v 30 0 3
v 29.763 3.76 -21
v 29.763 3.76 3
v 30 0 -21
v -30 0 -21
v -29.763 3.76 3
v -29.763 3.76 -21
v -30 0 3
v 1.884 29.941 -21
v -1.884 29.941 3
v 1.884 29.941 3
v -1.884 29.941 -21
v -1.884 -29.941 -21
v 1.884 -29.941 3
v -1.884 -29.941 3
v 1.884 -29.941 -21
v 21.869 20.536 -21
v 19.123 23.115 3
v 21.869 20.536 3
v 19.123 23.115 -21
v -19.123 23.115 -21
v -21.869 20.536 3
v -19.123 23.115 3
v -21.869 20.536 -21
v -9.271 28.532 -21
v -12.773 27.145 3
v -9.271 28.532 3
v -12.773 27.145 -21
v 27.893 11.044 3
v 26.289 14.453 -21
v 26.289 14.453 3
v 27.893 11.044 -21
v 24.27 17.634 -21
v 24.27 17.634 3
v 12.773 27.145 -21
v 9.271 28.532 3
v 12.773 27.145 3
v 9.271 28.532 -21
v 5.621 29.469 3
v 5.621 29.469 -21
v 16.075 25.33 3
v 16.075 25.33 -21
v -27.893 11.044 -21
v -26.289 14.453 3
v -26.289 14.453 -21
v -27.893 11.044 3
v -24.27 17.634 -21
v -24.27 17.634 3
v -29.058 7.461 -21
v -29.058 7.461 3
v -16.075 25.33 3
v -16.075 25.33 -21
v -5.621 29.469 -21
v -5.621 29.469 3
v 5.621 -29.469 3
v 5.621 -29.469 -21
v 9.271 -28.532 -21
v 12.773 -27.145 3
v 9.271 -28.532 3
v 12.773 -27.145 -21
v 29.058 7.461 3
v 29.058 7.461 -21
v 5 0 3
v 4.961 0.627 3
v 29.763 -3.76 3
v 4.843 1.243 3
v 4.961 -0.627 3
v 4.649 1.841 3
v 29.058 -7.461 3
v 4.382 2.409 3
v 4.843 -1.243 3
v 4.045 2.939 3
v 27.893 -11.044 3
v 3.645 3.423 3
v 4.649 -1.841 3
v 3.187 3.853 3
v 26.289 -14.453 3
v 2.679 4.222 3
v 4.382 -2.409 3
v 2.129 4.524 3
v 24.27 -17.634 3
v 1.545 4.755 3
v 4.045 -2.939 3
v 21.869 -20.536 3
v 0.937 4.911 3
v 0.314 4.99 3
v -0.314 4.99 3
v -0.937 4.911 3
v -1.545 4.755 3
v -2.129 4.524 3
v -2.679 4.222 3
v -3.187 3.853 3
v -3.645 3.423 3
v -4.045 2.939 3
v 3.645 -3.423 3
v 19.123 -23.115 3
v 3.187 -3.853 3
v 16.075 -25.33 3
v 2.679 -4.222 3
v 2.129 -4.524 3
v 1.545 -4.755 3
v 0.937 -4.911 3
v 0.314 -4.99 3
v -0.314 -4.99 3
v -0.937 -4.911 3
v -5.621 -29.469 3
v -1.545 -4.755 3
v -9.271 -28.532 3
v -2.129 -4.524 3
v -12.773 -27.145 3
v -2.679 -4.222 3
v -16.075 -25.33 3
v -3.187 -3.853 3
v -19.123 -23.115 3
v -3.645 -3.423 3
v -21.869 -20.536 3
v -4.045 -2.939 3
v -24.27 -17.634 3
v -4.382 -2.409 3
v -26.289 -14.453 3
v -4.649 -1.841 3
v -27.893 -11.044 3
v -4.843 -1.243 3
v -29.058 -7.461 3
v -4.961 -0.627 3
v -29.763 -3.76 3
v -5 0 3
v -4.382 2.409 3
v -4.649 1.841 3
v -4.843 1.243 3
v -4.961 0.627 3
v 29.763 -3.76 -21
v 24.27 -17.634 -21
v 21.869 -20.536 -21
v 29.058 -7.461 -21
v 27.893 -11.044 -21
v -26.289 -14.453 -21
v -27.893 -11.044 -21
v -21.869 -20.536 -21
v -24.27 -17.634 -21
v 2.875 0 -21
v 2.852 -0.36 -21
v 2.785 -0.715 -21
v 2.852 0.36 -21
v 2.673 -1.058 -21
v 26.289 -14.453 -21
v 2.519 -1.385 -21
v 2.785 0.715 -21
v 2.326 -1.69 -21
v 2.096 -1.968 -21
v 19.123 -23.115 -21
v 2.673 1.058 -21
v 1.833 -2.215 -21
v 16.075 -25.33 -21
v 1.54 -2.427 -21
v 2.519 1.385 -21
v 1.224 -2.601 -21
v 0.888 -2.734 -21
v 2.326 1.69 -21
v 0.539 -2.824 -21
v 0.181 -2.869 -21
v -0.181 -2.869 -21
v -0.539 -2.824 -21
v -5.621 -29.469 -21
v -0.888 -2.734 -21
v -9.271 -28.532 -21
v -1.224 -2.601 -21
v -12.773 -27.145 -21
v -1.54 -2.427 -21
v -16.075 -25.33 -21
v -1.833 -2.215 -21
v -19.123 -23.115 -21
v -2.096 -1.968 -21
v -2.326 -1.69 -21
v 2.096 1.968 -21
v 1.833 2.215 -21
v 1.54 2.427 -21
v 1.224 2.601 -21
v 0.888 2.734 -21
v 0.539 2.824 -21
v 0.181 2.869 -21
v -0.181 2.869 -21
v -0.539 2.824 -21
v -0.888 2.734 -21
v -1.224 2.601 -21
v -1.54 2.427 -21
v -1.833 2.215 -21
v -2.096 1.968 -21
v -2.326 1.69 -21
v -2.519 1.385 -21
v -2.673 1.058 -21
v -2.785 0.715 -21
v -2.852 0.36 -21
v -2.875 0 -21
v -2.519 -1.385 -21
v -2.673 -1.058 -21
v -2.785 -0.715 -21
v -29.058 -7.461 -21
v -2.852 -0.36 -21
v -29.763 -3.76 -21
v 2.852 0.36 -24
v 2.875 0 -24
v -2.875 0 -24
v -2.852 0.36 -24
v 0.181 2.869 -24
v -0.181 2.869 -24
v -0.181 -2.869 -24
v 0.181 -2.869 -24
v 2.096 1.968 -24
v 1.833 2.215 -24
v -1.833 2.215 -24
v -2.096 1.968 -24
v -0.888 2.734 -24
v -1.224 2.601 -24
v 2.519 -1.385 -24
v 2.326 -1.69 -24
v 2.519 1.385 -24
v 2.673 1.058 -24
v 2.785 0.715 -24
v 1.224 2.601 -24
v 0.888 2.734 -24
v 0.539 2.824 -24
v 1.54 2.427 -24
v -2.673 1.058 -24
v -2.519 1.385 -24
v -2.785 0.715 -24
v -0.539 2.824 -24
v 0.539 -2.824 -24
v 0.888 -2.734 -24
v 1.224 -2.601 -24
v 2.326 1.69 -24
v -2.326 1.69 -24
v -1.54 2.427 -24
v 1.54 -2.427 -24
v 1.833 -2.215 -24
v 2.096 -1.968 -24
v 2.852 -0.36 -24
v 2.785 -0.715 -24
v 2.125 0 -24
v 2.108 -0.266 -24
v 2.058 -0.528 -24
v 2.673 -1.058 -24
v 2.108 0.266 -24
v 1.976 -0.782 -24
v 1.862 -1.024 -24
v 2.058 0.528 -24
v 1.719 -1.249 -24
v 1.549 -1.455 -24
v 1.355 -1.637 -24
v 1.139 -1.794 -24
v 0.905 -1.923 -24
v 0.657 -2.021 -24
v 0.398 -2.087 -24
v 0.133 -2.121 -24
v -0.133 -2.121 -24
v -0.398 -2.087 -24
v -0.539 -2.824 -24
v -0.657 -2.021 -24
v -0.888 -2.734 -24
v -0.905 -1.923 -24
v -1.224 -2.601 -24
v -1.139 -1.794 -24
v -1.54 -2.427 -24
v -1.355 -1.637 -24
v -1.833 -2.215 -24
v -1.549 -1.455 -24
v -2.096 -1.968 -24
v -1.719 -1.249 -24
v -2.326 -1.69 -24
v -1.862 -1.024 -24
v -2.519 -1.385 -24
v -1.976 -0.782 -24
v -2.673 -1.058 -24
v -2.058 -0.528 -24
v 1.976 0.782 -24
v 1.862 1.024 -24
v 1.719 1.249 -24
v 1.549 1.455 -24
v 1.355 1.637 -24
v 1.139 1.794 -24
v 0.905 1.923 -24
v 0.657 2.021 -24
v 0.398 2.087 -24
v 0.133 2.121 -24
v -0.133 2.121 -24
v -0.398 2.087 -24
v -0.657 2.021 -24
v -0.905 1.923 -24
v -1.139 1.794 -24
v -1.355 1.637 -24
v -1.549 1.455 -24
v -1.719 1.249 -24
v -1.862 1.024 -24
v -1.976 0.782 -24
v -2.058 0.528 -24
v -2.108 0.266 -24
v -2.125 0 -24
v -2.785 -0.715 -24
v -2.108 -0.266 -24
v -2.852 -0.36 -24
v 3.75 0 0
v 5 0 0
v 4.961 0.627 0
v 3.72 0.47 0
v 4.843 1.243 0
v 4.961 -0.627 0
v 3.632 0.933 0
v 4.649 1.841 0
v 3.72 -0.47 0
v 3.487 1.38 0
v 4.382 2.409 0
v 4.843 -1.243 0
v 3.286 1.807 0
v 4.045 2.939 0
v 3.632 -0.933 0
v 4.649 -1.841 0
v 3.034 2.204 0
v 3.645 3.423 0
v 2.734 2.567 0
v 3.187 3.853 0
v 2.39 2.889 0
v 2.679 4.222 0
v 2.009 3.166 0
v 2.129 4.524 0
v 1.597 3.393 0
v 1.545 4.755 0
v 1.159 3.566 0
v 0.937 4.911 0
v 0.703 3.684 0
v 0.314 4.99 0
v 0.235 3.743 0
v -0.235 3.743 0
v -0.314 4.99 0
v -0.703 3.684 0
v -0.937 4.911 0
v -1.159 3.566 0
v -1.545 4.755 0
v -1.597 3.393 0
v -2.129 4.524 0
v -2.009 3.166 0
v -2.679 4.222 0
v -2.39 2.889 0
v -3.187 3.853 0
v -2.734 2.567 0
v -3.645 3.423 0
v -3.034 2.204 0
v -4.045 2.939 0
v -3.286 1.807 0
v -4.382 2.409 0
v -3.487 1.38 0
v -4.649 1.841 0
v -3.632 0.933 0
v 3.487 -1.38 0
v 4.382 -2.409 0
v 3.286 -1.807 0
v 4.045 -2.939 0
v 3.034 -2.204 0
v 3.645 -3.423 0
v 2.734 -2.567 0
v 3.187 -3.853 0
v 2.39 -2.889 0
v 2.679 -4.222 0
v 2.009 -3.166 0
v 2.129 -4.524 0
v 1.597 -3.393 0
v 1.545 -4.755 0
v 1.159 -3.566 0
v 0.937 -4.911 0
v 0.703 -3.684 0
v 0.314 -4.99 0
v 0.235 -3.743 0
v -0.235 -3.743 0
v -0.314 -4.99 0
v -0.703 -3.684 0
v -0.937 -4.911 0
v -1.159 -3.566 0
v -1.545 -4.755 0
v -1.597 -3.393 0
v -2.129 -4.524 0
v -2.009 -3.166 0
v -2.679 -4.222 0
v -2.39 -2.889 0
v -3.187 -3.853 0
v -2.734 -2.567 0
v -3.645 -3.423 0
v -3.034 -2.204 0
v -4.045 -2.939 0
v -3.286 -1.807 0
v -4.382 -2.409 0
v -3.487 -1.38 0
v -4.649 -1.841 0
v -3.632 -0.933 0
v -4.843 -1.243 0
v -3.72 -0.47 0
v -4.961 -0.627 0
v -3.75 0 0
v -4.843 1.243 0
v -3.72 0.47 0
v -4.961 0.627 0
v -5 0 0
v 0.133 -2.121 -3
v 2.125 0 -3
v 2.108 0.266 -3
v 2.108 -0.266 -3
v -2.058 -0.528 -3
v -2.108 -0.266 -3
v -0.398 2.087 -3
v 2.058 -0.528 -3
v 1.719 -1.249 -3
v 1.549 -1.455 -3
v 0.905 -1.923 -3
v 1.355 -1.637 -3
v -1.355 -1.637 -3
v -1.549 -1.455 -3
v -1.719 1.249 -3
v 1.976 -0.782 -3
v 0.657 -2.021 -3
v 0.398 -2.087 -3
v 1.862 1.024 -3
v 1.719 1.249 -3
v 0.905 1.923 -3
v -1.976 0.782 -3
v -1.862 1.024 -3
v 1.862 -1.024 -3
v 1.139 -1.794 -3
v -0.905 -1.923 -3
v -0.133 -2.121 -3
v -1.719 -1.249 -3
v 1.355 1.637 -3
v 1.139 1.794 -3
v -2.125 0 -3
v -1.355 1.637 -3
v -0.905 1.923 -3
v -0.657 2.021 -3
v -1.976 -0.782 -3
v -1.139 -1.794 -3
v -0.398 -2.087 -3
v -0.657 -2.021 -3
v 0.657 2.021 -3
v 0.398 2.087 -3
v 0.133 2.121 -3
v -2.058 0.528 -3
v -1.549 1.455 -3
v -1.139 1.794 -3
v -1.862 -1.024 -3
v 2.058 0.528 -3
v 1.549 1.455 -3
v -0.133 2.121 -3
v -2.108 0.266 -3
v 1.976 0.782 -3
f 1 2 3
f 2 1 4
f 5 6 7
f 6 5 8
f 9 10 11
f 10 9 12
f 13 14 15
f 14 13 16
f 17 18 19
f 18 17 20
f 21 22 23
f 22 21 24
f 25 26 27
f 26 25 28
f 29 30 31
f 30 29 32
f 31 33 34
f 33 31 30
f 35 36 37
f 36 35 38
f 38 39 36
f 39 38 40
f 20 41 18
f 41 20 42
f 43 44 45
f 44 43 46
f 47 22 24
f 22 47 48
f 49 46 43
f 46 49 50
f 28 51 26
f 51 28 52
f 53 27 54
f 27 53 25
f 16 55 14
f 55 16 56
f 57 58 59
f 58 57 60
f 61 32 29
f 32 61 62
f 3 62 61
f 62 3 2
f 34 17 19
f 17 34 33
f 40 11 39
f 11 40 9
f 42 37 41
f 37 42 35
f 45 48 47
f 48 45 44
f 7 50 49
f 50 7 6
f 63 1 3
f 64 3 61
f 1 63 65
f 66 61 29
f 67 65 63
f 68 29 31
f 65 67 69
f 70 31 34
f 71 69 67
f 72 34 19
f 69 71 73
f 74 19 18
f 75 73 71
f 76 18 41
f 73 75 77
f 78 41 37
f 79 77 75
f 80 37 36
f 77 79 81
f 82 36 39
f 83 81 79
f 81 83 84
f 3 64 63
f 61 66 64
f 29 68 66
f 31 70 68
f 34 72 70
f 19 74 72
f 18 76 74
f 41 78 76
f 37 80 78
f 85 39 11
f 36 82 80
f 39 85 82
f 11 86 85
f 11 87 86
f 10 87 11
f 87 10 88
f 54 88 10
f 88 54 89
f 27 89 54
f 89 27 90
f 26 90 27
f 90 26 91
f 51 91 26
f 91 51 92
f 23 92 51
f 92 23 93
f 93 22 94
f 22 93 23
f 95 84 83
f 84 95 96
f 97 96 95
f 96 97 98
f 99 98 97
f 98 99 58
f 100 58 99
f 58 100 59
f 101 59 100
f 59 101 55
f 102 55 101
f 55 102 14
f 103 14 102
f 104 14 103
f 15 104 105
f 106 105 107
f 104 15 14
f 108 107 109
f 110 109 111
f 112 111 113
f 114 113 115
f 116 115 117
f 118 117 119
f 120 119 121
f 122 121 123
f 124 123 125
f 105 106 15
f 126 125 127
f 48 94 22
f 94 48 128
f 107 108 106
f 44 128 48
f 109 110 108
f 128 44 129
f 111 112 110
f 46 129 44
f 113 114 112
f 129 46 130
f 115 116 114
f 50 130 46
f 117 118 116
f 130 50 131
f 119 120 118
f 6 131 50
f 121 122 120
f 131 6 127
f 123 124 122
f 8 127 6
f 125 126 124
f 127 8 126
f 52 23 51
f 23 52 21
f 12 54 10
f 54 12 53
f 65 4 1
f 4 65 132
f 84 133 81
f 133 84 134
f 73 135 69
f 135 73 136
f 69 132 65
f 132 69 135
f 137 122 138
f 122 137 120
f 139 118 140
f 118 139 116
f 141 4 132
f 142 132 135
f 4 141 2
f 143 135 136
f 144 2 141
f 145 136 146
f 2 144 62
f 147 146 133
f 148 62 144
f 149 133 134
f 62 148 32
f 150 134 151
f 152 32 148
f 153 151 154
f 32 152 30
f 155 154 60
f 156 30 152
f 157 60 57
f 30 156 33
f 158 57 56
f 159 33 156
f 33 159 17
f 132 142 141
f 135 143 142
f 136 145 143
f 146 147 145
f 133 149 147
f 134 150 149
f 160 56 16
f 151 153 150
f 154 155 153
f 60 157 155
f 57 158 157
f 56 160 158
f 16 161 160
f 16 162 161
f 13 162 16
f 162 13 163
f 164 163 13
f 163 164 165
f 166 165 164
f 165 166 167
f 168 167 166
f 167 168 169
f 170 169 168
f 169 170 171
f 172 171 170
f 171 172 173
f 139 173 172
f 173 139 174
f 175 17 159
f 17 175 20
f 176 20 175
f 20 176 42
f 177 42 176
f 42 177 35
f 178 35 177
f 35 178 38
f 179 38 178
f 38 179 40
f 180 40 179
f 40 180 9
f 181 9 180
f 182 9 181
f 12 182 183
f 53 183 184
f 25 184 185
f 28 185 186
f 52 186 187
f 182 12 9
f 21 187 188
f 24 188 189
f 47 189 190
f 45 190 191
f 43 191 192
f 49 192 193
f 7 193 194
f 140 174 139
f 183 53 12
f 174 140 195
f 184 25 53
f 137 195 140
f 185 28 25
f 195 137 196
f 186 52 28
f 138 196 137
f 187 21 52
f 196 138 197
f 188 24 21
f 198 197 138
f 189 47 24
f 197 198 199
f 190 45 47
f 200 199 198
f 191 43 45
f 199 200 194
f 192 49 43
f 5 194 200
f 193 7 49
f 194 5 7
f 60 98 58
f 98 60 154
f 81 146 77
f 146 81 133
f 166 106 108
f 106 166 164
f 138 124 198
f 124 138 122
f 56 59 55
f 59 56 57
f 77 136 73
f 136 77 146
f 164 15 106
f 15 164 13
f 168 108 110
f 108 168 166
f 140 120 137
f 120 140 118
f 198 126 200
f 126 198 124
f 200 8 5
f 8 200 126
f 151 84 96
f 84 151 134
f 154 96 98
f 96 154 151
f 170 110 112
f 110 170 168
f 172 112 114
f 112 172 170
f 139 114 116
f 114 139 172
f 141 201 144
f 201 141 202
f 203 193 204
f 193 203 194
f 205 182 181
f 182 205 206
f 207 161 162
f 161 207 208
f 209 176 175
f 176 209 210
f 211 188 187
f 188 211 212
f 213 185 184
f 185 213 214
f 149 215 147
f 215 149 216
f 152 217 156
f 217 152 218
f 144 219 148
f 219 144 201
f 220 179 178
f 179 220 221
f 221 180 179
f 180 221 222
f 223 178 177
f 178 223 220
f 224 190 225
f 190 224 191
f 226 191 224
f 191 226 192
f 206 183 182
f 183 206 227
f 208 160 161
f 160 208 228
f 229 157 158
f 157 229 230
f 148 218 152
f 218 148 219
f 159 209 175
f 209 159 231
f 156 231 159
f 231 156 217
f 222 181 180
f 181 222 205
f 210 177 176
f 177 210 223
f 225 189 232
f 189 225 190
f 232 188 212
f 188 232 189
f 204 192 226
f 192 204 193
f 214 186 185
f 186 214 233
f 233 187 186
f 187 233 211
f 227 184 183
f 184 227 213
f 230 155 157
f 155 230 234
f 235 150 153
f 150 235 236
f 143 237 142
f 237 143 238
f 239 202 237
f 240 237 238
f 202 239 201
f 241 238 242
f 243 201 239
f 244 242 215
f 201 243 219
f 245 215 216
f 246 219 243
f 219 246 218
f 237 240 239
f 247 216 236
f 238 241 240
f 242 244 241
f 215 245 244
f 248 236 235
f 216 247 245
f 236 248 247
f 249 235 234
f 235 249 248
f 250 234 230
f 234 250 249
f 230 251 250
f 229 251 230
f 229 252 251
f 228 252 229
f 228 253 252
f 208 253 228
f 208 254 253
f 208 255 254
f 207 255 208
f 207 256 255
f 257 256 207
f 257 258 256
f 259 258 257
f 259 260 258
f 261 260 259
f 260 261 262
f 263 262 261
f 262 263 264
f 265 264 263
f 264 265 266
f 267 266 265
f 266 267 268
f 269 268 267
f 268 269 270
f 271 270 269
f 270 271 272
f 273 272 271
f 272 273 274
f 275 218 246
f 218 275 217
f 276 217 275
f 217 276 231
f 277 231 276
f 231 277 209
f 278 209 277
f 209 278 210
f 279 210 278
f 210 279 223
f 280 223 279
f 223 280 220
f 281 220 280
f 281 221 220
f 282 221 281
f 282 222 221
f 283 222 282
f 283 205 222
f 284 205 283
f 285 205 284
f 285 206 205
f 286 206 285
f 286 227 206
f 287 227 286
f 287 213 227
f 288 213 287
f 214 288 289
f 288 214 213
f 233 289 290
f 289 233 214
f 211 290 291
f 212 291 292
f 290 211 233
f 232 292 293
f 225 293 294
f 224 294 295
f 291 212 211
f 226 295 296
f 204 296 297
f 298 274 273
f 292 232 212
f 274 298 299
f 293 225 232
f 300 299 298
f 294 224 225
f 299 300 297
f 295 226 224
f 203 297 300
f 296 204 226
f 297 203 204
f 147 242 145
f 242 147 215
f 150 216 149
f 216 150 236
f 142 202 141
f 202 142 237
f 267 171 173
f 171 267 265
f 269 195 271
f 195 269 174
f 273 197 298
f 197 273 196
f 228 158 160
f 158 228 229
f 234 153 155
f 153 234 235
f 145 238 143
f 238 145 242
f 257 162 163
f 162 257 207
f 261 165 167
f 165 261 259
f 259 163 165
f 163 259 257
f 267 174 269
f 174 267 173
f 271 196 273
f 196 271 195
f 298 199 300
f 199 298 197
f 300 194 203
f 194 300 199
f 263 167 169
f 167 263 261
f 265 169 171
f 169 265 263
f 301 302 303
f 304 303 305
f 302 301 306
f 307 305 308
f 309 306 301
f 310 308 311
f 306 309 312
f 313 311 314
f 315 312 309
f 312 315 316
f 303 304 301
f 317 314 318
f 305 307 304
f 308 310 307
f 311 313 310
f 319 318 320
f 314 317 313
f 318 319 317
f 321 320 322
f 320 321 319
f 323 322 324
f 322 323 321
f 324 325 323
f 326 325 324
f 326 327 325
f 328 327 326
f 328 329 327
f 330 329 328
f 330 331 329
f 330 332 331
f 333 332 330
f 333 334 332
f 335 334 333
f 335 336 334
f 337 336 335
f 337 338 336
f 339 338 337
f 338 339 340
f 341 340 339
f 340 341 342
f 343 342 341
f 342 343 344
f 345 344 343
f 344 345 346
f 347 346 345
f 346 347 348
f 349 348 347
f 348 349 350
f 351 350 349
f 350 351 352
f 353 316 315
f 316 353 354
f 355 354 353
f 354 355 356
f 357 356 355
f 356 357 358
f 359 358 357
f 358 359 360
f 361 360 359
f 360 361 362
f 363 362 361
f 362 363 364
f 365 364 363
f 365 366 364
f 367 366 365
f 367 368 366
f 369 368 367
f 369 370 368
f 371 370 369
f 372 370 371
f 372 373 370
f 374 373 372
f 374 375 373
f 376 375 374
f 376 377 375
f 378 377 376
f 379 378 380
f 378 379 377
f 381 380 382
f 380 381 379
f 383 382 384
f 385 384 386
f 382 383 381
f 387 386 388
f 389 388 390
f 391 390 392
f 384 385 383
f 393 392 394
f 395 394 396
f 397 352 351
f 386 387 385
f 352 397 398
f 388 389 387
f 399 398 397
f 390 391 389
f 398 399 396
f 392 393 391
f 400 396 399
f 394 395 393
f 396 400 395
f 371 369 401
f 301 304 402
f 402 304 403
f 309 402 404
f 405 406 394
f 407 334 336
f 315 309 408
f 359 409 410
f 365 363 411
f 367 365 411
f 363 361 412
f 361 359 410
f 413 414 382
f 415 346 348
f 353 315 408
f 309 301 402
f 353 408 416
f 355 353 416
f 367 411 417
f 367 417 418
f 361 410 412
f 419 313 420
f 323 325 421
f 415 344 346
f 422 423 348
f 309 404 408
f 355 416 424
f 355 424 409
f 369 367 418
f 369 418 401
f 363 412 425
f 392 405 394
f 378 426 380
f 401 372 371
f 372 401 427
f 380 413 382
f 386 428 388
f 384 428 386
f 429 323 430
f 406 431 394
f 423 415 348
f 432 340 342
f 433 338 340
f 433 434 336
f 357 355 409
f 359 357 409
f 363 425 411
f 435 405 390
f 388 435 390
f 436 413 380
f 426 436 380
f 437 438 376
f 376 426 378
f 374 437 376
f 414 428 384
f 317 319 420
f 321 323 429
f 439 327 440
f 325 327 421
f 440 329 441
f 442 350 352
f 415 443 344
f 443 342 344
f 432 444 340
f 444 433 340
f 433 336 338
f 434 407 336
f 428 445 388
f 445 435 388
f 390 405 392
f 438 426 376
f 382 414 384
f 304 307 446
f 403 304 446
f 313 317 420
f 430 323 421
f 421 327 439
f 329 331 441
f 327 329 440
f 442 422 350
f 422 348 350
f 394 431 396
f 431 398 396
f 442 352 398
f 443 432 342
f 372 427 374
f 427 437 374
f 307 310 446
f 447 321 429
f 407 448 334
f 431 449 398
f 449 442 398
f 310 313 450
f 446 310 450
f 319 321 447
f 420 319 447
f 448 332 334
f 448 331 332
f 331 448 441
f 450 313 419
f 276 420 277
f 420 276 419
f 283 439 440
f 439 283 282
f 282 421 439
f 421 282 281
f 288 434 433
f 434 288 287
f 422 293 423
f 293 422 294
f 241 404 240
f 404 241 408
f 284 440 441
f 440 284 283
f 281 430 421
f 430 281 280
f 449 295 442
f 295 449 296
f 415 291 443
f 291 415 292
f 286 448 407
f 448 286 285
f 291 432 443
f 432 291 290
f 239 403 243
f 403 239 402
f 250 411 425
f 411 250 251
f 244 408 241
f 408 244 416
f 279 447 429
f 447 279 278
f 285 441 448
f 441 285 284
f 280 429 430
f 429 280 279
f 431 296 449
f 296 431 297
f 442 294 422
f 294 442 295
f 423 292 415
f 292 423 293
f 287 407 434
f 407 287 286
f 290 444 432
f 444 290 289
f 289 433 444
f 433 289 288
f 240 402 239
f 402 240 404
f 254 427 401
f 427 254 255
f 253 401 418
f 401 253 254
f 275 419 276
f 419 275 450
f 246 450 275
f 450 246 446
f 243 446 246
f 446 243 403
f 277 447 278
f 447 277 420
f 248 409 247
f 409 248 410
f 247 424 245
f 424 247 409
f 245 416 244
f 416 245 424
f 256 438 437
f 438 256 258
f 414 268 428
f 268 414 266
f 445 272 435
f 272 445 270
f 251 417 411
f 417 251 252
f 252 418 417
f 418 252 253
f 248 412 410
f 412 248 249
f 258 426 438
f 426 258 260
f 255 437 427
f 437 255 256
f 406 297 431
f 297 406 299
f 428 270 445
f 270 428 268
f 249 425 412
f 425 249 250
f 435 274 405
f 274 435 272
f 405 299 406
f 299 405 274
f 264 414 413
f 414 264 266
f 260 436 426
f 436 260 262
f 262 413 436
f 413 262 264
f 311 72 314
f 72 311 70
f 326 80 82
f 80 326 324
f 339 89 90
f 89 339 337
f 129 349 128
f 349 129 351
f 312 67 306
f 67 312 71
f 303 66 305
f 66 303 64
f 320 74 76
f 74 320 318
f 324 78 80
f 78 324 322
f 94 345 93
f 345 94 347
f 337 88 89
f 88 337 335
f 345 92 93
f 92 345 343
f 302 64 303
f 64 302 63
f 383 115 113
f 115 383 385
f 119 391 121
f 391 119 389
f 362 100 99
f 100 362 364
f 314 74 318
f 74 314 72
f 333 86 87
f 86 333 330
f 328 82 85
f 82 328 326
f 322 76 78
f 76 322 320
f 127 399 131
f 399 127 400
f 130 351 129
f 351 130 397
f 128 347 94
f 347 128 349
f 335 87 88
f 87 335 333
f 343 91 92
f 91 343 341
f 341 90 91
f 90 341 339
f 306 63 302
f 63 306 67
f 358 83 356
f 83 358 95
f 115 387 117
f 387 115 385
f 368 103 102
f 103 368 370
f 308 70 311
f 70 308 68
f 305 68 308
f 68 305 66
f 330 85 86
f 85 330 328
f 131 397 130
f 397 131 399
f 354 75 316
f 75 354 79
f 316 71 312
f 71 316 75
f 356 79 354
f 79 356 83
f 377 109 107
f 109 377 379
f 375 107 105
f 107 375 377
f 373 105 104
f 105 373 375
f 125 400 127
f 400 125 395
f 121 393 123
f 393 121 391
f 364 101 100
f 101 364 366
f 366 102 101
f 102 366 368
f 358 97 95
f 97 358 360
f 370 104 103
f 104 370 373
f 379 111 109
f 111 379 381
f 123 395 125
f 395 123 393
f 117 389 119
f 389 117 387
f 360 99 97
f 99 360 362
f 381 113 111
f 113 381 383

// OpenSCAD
$fn = 50;


difference() {
	union() {
		translate(v = [0, 0, -21.0000000000]) {
			cylinder(h = 24, r = 30.0000000000);
		}
		#translate(v = [0, 0, -24.0000000000]) {
			cylinder(h = 24, r = 2.8750000000);
		}
	}
	union() {
		translate(v = [0, 0, 0]) {
			rotate(a = [0, 0, 0]) {
				difference() {
					union() {
						translate(v = [0, 0, -24.0000000000]) {
							cylinder(h = 24, r = 2.0000000000);
						}
						translate(v = [0, 0, -3]) {
							cylinder(h = 3, r1 = 2.1250000000, r2 = 3.7500000000);
						}
						translate(v = [0, 0, -24.0000000000]) {
							cylinder(h = 24, r = 2.1250000000);
						}
						translate(v = [0, 0, -24.0000000000]) {
							cylinder(h = 24, r = 2.0000000000);
						}
					}
					union();
				}
			}
		}
		#cylinder(h = 3, r = 5.0000000000);
	}
}
